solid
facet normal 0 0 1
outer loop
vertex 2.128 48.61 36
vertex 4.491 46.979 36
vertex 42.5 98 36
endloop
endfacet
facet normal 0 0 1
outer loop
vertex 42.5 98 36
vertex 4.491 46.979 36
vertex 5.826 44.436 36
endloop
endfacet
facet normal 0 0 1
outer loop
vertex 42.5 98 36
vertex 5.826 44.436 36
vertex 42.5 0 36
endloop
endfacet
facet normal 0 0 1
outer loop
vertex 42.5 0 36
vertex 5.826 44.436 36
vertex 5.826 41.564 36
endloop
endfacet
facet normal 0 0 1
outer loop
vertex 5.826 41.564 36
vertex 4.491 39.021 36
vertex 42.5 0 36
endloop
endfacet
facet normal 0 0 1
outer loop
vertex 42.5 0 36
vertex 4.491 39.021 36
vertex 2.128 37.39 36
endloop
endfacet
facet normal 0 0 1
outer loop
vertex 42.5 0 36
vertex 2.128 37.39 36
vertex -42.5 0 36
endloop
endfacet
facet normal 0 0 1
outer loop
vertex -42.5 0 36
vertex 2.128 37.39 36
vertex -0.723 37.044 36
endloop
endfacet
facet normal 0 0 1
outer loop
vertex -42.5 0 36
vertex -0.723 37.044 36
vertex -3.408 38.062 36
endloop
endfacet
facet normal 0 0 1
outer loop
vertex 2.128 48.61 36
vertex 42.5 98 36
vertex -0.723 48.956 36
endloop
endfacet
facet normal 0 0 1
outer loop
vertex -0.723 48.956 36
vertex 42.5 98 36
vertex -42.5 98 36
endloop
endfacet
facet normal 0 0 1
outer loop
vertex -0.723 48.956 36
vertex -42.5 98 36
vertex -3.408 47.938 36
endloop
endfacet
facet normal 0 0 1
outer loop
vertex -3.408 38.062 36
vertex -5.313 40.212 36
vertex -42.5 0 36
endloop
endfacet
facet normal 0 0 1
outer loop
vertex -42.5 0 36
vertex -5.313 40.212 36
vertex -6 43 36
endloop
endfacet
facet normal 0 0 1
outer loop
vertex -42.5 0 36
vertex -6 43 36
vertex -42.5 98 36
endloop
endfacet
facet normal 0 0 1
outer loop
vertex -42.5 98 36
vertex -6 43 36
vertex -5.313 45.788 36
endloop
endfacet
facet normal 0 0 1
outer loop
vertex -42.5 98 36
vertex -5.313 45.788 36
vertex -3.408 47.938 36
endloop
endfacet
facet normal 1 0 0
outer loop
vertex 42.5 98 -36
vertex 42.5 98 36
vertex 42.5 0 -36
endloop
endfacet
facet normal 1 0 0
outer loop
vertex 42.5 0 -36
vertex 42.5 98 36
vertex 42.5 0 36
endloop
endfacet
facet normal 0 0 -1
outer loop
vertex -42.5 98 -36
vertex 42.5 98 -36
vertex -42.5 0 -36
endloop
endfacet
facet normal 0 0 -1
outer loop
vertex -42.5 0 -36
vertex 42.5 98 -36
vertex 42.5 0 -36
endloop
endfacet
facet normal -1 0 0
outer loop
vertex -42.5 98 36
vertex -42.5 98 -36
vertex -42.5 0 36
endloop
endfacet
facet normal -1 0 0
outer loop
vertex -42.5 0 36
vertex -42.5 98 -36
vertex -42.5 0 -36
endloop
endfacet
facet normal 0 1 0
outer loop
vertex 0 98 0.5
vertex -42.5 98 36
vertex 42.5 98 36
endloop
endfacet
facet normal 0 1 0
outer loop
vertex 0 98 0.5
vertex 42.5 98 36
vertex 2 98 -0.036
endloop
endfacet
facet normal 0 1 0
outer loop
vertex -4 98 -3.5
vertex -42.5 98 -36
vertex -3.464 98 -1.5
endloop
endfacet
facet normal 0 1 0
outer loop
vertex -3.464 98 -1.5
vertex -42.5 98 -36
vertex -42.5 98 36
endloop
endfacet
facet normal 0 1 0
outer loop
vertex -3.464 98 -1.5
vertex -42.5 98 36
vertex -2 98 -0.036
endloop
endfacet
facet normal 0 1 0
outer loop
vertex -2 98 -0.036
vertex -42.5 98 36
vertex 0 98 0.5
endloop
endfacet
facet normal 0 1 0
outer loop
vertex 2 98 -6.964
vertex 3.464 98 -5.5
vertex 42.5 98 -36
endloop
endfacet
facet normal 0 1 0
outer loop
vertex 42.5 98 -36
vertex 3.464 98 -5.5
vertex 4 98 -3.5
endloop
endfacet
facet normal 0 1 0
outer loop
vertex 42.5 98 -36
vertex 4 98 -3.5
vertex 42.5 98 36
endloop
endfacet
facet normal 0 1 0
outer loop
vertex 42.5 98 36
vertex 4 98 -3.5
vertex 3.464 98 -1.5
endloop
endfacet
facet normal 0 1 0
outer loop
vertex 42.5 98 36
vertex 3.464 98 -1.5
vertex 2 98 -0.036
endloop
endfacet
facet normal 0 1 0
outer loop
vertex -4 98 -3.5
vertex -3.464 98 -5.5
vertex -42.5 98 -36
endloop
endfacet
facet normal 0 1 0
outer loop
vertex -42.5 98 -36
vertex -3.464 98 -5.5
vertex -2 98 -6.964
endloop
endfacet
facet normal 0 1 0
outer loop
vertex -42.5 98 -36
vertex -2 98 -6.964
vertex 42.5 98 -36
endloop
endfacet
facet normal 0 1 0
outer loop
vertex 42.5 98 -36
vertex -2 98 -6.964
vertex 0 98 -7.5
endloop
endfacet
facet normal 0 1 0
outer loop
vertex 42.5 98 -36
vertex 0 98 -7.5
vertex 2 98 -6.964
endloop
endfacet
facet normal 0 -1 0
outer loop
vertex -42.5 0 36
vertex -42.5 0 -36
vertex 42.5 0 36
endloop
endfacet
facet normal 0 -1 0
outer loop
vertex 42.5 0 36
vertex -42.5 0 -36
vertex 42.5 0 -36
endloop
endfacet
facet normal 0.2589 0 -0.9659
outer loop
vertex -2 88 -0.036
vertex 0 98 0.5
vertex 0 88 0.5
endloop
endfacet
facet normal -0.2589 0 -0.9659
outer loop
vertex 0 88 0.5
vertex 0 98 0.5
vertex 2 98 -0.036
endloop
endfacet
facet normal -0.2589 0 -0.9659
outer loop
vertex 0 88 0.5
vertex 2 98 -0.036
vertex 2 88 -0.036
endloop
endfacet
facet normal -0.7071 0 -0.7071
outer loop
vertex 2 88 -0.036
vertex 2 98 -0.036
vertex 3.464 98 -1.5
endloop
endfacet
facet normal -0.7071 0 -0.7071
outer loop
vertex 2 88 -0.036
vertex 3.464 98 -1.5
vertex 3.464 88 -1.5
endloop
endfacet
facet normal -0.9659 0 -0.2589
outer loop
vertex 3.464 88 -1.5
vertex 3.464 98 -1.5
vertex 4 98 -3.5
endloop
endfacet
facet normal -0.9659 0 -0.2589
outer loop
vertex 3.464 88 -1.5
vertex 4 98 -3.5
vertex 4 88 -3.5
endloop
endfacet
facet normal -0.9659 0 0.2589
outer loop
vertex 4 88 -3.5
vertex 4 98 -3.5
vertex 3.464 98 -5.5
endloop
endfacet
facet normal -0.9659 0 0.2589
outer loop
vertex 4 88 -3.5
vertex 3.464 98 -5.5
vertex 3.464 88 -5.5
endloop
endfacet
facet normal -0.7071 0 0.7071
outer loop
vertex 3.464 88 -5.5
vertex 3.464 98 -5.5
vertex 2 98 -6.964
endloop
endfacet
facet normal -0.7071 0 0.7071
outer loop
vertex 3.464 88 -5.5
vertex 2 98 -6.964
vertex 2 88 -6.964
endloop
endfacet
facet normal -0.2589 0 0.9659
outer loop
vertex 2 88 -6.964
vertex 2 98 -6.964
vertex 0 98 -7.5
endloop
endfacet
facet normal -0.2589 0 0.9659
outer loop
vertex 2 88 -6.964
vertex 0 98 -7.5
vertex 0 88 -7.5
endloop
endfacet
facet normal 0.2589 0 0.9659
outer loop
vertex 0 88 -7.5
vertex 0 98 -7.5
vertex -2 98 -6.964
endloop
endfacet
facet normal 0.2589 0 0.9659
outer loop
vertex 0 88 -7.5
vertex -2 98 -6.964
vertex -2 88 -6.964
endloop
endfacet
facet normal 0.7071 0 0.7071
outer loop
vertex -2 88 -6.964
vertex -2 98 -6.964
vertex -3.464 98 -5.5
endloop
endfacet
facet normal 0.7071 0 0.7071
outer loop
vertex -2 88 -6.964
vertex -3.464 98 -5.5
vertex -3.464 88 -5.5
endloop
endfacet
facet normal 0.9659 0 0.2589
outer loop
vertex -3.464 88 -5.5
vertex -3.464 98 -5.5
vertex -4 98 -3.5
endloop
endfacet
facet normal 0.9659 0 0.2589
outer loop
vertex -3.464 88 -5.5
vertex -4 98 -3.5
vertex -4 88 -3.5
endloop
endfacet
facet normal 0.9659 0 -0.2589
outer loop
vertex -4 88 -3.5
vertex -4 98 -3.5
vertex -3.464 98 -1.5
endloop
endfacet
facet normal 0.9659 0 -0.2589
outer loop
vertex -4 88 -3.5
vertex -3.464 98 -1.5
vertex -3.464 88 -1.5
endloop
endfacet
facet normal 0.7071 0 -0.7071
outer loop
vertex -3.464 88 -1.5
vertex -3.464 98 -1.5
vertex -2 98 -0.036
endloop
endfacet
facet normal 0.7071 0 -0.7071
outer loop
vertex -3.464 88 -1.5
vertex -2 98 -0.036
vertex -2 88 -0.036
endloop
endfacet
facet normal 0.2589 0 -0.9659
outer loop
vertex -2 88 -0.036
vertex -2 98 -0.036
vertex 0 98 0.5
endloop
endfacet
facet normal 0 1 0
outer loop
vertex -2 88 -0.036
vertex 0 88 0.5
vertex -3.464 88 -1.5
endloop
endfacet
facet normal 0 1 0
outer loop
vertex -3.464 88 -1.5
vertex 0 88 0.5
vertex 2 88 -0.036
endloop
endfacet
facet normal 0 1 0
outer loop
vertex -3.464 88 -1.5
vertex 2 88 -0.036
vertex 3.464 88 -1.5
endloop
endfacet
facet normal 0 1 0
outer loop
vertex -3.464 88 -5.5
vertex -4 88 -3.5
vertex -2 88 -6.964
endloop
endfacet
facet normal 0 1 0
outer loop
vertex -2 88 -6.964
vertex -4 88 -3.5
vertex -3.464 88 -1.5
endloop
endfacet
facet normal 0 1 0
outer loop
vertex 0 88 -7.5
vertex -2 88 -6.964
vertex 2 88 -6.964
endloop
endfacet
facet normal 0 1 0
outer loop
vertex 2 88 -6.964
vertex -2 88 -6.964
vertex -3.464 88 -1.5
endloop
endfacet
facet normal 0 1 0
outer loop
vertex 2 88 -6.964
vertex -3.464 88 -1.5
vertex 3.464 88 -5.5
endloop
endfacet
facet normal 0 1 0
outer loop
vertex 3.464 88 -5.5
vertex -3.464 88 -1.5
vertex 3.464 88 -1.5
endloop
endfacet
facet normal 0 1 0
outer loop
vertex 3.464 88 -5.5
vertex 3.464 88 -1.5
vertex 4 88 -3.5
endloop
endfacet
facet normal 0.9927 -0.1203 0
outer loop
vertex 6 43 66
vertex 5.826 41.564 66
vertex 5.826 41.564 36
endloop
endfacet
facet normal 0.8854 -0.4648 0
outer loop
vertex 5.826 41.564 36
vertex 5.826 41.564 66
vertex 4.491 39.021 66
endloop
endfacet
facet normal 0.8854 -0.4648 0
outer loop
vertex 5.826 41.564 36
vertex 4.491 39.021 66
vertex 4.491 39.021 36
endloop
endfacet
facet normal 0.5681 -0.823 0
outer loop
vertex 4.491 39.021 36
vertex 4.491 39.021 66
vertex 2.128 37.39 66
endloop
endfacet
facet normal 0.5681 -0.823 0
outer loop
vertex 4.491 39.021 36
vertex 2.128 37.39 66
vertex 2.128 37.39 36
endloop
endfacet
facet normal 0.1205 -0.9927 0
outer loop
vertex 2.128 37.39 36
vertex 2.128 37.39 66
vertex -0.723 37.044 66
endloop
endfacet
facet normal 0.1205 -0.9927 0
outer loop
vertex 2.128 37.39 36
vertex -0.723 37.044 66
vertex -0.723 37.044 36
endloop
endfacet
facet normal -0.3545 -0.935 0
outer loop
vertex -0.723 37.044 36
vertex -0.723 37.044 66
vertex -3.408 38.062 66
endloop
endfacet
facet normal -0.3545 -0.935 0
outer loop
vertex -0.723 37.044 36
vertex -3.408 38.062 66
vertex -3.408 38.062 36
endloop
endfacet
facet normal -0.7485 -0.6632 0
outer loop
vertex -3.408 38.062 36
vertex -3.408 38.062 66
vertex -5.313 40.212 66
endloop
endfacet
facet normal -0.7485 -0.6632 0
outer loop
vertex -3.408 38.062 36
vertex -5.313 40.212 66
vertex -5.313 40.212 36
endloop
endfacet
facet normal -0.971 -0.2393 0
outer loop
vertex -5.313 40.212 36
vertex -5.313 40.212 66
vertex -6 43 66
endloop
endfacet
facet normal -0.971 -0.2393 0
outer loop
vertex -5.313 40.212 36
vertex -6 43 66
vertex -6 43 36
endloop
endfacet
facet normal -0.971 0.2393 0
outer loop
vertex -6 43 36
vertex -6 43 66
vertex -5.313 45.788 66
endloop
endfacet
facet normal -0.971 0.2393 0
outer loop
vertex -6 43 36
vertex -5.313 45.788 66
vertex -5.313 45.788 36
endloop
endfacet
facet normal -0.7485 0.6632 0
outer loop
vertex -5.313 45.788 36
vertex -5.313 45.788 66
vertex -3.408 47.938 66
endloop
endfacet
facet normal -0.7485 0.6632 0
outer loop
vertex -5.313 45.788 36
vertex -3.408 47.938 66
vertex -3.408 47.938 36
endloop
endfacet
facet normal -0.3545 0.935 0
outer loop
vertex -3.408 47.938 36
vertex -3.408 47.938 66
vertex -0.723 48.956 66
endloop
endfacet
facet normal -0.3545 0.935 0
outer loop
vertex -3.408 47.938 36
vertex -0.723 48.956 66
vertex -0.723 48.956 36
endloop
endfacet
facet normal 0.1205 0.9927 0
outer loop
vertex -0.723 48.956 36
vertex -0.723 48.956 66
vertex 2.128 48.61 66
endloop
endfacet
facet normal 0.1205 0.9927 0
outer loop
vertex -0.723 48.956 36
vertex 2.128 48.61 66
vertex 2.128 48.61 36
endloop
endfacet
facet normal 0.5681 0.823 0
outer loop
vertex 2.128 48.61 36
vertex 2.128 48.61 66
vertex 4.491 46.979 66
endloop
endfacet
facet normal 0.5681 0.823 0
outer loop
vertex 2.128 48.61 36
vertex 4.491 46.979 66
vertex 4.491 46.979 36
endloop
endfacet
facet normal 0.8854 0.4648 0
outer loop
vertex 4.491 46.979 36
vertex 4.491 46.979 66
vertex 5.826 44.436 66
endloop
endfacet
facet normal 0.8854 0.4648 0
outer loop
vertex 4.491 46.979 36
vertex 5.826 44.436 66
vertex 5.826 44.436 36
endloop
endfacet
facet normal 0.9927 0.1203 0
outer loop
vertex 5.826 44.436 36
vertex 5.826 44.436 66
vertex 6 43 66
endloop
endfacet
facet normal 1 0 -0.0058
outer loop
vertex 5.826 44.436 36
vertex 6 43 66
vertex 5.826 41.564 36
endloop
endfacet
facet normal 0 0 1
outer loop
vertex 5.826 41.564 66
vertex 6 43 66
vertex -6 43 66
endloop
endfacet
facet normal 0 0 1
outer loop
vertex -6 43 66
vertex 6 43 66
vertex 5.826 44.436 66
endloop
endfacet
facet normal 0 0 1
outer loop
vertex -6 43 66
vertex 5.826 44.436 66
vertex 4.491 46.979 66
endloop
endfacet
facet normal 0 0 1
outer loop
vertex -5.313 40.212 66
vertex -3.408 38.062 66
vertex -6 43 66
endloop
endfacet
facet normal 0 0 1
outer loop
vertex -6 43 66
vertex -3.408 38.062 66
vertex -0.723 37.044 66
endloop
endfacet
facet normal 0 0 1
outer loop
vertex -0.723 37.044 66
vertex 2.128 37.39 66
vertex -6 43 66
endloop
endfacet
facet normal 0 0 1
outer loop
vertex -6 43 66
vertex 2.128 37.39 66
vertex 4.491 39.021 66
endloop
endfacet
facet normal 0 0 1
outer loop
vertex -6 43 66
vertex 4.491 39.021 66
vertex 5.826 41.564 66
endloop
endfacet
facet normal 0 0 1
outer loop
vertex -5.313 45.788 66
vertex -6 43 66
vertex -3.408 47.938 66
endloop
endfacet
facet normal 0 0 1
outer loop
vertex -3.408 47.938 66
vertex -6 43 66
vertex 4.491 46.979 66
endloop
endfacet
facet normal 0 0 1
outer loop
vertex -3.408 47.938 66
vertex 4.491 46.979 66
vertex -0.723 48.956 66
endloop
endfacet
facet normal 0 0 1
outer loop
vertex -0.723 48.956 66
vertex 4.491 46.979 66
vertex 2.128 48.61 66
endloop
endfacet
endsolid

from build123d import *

# Parameters (mm, degrees)
SKETCH1_W           = 85
SKETCH1_H           = 72
BOSS_EXTRUDE1_DEPTH = 98
SKETCH2_R           = 4
CUT_EXTRUDE1_DEPTH  = 10
SKETCH3_R           = 6
BOSS_EXTRUDE2_DEPTH = 30


with BuildPart() as part:
    # Sketch1 → Boss-Extrude1 (new body)
    with BuildSketch(Plane(origin=(0, 0, 0), x_dir=(1, 0, 0), z_dir=(0, 1, 0))):
        Rectangle(SKETCH1_W, SKETCH1_H)
    extrude(amount=BOSS_EXTRUDE1_DEPTH)

    # Sketch2 → Cut-Extrude1 (cut)
    with BuildSketch(Plane(origin=(0, 98, 0), x_dir=(1, 0, 0), z_dir=(0, 1, 0))):
        with Locations(Location((0, 3.5, 0), (0, 0, 270))):
            Circle(SKETCH2_R)
    extrude(amount=-CUT_EXTRUDE1_DEPTH, mode=Mode.SUBTRACT)

    # Sketch3 → Boss-Extrude2 (add)
    with BuildSketch(Plane.XY.offset(36)):
        with Locations(Location((0, 43, 0), (0, 0, 180))):
            Circle(SKETCH3_R)
    extrude(amount=BOSS_EXTRUDE2_DEPTH)


solid = part.part
